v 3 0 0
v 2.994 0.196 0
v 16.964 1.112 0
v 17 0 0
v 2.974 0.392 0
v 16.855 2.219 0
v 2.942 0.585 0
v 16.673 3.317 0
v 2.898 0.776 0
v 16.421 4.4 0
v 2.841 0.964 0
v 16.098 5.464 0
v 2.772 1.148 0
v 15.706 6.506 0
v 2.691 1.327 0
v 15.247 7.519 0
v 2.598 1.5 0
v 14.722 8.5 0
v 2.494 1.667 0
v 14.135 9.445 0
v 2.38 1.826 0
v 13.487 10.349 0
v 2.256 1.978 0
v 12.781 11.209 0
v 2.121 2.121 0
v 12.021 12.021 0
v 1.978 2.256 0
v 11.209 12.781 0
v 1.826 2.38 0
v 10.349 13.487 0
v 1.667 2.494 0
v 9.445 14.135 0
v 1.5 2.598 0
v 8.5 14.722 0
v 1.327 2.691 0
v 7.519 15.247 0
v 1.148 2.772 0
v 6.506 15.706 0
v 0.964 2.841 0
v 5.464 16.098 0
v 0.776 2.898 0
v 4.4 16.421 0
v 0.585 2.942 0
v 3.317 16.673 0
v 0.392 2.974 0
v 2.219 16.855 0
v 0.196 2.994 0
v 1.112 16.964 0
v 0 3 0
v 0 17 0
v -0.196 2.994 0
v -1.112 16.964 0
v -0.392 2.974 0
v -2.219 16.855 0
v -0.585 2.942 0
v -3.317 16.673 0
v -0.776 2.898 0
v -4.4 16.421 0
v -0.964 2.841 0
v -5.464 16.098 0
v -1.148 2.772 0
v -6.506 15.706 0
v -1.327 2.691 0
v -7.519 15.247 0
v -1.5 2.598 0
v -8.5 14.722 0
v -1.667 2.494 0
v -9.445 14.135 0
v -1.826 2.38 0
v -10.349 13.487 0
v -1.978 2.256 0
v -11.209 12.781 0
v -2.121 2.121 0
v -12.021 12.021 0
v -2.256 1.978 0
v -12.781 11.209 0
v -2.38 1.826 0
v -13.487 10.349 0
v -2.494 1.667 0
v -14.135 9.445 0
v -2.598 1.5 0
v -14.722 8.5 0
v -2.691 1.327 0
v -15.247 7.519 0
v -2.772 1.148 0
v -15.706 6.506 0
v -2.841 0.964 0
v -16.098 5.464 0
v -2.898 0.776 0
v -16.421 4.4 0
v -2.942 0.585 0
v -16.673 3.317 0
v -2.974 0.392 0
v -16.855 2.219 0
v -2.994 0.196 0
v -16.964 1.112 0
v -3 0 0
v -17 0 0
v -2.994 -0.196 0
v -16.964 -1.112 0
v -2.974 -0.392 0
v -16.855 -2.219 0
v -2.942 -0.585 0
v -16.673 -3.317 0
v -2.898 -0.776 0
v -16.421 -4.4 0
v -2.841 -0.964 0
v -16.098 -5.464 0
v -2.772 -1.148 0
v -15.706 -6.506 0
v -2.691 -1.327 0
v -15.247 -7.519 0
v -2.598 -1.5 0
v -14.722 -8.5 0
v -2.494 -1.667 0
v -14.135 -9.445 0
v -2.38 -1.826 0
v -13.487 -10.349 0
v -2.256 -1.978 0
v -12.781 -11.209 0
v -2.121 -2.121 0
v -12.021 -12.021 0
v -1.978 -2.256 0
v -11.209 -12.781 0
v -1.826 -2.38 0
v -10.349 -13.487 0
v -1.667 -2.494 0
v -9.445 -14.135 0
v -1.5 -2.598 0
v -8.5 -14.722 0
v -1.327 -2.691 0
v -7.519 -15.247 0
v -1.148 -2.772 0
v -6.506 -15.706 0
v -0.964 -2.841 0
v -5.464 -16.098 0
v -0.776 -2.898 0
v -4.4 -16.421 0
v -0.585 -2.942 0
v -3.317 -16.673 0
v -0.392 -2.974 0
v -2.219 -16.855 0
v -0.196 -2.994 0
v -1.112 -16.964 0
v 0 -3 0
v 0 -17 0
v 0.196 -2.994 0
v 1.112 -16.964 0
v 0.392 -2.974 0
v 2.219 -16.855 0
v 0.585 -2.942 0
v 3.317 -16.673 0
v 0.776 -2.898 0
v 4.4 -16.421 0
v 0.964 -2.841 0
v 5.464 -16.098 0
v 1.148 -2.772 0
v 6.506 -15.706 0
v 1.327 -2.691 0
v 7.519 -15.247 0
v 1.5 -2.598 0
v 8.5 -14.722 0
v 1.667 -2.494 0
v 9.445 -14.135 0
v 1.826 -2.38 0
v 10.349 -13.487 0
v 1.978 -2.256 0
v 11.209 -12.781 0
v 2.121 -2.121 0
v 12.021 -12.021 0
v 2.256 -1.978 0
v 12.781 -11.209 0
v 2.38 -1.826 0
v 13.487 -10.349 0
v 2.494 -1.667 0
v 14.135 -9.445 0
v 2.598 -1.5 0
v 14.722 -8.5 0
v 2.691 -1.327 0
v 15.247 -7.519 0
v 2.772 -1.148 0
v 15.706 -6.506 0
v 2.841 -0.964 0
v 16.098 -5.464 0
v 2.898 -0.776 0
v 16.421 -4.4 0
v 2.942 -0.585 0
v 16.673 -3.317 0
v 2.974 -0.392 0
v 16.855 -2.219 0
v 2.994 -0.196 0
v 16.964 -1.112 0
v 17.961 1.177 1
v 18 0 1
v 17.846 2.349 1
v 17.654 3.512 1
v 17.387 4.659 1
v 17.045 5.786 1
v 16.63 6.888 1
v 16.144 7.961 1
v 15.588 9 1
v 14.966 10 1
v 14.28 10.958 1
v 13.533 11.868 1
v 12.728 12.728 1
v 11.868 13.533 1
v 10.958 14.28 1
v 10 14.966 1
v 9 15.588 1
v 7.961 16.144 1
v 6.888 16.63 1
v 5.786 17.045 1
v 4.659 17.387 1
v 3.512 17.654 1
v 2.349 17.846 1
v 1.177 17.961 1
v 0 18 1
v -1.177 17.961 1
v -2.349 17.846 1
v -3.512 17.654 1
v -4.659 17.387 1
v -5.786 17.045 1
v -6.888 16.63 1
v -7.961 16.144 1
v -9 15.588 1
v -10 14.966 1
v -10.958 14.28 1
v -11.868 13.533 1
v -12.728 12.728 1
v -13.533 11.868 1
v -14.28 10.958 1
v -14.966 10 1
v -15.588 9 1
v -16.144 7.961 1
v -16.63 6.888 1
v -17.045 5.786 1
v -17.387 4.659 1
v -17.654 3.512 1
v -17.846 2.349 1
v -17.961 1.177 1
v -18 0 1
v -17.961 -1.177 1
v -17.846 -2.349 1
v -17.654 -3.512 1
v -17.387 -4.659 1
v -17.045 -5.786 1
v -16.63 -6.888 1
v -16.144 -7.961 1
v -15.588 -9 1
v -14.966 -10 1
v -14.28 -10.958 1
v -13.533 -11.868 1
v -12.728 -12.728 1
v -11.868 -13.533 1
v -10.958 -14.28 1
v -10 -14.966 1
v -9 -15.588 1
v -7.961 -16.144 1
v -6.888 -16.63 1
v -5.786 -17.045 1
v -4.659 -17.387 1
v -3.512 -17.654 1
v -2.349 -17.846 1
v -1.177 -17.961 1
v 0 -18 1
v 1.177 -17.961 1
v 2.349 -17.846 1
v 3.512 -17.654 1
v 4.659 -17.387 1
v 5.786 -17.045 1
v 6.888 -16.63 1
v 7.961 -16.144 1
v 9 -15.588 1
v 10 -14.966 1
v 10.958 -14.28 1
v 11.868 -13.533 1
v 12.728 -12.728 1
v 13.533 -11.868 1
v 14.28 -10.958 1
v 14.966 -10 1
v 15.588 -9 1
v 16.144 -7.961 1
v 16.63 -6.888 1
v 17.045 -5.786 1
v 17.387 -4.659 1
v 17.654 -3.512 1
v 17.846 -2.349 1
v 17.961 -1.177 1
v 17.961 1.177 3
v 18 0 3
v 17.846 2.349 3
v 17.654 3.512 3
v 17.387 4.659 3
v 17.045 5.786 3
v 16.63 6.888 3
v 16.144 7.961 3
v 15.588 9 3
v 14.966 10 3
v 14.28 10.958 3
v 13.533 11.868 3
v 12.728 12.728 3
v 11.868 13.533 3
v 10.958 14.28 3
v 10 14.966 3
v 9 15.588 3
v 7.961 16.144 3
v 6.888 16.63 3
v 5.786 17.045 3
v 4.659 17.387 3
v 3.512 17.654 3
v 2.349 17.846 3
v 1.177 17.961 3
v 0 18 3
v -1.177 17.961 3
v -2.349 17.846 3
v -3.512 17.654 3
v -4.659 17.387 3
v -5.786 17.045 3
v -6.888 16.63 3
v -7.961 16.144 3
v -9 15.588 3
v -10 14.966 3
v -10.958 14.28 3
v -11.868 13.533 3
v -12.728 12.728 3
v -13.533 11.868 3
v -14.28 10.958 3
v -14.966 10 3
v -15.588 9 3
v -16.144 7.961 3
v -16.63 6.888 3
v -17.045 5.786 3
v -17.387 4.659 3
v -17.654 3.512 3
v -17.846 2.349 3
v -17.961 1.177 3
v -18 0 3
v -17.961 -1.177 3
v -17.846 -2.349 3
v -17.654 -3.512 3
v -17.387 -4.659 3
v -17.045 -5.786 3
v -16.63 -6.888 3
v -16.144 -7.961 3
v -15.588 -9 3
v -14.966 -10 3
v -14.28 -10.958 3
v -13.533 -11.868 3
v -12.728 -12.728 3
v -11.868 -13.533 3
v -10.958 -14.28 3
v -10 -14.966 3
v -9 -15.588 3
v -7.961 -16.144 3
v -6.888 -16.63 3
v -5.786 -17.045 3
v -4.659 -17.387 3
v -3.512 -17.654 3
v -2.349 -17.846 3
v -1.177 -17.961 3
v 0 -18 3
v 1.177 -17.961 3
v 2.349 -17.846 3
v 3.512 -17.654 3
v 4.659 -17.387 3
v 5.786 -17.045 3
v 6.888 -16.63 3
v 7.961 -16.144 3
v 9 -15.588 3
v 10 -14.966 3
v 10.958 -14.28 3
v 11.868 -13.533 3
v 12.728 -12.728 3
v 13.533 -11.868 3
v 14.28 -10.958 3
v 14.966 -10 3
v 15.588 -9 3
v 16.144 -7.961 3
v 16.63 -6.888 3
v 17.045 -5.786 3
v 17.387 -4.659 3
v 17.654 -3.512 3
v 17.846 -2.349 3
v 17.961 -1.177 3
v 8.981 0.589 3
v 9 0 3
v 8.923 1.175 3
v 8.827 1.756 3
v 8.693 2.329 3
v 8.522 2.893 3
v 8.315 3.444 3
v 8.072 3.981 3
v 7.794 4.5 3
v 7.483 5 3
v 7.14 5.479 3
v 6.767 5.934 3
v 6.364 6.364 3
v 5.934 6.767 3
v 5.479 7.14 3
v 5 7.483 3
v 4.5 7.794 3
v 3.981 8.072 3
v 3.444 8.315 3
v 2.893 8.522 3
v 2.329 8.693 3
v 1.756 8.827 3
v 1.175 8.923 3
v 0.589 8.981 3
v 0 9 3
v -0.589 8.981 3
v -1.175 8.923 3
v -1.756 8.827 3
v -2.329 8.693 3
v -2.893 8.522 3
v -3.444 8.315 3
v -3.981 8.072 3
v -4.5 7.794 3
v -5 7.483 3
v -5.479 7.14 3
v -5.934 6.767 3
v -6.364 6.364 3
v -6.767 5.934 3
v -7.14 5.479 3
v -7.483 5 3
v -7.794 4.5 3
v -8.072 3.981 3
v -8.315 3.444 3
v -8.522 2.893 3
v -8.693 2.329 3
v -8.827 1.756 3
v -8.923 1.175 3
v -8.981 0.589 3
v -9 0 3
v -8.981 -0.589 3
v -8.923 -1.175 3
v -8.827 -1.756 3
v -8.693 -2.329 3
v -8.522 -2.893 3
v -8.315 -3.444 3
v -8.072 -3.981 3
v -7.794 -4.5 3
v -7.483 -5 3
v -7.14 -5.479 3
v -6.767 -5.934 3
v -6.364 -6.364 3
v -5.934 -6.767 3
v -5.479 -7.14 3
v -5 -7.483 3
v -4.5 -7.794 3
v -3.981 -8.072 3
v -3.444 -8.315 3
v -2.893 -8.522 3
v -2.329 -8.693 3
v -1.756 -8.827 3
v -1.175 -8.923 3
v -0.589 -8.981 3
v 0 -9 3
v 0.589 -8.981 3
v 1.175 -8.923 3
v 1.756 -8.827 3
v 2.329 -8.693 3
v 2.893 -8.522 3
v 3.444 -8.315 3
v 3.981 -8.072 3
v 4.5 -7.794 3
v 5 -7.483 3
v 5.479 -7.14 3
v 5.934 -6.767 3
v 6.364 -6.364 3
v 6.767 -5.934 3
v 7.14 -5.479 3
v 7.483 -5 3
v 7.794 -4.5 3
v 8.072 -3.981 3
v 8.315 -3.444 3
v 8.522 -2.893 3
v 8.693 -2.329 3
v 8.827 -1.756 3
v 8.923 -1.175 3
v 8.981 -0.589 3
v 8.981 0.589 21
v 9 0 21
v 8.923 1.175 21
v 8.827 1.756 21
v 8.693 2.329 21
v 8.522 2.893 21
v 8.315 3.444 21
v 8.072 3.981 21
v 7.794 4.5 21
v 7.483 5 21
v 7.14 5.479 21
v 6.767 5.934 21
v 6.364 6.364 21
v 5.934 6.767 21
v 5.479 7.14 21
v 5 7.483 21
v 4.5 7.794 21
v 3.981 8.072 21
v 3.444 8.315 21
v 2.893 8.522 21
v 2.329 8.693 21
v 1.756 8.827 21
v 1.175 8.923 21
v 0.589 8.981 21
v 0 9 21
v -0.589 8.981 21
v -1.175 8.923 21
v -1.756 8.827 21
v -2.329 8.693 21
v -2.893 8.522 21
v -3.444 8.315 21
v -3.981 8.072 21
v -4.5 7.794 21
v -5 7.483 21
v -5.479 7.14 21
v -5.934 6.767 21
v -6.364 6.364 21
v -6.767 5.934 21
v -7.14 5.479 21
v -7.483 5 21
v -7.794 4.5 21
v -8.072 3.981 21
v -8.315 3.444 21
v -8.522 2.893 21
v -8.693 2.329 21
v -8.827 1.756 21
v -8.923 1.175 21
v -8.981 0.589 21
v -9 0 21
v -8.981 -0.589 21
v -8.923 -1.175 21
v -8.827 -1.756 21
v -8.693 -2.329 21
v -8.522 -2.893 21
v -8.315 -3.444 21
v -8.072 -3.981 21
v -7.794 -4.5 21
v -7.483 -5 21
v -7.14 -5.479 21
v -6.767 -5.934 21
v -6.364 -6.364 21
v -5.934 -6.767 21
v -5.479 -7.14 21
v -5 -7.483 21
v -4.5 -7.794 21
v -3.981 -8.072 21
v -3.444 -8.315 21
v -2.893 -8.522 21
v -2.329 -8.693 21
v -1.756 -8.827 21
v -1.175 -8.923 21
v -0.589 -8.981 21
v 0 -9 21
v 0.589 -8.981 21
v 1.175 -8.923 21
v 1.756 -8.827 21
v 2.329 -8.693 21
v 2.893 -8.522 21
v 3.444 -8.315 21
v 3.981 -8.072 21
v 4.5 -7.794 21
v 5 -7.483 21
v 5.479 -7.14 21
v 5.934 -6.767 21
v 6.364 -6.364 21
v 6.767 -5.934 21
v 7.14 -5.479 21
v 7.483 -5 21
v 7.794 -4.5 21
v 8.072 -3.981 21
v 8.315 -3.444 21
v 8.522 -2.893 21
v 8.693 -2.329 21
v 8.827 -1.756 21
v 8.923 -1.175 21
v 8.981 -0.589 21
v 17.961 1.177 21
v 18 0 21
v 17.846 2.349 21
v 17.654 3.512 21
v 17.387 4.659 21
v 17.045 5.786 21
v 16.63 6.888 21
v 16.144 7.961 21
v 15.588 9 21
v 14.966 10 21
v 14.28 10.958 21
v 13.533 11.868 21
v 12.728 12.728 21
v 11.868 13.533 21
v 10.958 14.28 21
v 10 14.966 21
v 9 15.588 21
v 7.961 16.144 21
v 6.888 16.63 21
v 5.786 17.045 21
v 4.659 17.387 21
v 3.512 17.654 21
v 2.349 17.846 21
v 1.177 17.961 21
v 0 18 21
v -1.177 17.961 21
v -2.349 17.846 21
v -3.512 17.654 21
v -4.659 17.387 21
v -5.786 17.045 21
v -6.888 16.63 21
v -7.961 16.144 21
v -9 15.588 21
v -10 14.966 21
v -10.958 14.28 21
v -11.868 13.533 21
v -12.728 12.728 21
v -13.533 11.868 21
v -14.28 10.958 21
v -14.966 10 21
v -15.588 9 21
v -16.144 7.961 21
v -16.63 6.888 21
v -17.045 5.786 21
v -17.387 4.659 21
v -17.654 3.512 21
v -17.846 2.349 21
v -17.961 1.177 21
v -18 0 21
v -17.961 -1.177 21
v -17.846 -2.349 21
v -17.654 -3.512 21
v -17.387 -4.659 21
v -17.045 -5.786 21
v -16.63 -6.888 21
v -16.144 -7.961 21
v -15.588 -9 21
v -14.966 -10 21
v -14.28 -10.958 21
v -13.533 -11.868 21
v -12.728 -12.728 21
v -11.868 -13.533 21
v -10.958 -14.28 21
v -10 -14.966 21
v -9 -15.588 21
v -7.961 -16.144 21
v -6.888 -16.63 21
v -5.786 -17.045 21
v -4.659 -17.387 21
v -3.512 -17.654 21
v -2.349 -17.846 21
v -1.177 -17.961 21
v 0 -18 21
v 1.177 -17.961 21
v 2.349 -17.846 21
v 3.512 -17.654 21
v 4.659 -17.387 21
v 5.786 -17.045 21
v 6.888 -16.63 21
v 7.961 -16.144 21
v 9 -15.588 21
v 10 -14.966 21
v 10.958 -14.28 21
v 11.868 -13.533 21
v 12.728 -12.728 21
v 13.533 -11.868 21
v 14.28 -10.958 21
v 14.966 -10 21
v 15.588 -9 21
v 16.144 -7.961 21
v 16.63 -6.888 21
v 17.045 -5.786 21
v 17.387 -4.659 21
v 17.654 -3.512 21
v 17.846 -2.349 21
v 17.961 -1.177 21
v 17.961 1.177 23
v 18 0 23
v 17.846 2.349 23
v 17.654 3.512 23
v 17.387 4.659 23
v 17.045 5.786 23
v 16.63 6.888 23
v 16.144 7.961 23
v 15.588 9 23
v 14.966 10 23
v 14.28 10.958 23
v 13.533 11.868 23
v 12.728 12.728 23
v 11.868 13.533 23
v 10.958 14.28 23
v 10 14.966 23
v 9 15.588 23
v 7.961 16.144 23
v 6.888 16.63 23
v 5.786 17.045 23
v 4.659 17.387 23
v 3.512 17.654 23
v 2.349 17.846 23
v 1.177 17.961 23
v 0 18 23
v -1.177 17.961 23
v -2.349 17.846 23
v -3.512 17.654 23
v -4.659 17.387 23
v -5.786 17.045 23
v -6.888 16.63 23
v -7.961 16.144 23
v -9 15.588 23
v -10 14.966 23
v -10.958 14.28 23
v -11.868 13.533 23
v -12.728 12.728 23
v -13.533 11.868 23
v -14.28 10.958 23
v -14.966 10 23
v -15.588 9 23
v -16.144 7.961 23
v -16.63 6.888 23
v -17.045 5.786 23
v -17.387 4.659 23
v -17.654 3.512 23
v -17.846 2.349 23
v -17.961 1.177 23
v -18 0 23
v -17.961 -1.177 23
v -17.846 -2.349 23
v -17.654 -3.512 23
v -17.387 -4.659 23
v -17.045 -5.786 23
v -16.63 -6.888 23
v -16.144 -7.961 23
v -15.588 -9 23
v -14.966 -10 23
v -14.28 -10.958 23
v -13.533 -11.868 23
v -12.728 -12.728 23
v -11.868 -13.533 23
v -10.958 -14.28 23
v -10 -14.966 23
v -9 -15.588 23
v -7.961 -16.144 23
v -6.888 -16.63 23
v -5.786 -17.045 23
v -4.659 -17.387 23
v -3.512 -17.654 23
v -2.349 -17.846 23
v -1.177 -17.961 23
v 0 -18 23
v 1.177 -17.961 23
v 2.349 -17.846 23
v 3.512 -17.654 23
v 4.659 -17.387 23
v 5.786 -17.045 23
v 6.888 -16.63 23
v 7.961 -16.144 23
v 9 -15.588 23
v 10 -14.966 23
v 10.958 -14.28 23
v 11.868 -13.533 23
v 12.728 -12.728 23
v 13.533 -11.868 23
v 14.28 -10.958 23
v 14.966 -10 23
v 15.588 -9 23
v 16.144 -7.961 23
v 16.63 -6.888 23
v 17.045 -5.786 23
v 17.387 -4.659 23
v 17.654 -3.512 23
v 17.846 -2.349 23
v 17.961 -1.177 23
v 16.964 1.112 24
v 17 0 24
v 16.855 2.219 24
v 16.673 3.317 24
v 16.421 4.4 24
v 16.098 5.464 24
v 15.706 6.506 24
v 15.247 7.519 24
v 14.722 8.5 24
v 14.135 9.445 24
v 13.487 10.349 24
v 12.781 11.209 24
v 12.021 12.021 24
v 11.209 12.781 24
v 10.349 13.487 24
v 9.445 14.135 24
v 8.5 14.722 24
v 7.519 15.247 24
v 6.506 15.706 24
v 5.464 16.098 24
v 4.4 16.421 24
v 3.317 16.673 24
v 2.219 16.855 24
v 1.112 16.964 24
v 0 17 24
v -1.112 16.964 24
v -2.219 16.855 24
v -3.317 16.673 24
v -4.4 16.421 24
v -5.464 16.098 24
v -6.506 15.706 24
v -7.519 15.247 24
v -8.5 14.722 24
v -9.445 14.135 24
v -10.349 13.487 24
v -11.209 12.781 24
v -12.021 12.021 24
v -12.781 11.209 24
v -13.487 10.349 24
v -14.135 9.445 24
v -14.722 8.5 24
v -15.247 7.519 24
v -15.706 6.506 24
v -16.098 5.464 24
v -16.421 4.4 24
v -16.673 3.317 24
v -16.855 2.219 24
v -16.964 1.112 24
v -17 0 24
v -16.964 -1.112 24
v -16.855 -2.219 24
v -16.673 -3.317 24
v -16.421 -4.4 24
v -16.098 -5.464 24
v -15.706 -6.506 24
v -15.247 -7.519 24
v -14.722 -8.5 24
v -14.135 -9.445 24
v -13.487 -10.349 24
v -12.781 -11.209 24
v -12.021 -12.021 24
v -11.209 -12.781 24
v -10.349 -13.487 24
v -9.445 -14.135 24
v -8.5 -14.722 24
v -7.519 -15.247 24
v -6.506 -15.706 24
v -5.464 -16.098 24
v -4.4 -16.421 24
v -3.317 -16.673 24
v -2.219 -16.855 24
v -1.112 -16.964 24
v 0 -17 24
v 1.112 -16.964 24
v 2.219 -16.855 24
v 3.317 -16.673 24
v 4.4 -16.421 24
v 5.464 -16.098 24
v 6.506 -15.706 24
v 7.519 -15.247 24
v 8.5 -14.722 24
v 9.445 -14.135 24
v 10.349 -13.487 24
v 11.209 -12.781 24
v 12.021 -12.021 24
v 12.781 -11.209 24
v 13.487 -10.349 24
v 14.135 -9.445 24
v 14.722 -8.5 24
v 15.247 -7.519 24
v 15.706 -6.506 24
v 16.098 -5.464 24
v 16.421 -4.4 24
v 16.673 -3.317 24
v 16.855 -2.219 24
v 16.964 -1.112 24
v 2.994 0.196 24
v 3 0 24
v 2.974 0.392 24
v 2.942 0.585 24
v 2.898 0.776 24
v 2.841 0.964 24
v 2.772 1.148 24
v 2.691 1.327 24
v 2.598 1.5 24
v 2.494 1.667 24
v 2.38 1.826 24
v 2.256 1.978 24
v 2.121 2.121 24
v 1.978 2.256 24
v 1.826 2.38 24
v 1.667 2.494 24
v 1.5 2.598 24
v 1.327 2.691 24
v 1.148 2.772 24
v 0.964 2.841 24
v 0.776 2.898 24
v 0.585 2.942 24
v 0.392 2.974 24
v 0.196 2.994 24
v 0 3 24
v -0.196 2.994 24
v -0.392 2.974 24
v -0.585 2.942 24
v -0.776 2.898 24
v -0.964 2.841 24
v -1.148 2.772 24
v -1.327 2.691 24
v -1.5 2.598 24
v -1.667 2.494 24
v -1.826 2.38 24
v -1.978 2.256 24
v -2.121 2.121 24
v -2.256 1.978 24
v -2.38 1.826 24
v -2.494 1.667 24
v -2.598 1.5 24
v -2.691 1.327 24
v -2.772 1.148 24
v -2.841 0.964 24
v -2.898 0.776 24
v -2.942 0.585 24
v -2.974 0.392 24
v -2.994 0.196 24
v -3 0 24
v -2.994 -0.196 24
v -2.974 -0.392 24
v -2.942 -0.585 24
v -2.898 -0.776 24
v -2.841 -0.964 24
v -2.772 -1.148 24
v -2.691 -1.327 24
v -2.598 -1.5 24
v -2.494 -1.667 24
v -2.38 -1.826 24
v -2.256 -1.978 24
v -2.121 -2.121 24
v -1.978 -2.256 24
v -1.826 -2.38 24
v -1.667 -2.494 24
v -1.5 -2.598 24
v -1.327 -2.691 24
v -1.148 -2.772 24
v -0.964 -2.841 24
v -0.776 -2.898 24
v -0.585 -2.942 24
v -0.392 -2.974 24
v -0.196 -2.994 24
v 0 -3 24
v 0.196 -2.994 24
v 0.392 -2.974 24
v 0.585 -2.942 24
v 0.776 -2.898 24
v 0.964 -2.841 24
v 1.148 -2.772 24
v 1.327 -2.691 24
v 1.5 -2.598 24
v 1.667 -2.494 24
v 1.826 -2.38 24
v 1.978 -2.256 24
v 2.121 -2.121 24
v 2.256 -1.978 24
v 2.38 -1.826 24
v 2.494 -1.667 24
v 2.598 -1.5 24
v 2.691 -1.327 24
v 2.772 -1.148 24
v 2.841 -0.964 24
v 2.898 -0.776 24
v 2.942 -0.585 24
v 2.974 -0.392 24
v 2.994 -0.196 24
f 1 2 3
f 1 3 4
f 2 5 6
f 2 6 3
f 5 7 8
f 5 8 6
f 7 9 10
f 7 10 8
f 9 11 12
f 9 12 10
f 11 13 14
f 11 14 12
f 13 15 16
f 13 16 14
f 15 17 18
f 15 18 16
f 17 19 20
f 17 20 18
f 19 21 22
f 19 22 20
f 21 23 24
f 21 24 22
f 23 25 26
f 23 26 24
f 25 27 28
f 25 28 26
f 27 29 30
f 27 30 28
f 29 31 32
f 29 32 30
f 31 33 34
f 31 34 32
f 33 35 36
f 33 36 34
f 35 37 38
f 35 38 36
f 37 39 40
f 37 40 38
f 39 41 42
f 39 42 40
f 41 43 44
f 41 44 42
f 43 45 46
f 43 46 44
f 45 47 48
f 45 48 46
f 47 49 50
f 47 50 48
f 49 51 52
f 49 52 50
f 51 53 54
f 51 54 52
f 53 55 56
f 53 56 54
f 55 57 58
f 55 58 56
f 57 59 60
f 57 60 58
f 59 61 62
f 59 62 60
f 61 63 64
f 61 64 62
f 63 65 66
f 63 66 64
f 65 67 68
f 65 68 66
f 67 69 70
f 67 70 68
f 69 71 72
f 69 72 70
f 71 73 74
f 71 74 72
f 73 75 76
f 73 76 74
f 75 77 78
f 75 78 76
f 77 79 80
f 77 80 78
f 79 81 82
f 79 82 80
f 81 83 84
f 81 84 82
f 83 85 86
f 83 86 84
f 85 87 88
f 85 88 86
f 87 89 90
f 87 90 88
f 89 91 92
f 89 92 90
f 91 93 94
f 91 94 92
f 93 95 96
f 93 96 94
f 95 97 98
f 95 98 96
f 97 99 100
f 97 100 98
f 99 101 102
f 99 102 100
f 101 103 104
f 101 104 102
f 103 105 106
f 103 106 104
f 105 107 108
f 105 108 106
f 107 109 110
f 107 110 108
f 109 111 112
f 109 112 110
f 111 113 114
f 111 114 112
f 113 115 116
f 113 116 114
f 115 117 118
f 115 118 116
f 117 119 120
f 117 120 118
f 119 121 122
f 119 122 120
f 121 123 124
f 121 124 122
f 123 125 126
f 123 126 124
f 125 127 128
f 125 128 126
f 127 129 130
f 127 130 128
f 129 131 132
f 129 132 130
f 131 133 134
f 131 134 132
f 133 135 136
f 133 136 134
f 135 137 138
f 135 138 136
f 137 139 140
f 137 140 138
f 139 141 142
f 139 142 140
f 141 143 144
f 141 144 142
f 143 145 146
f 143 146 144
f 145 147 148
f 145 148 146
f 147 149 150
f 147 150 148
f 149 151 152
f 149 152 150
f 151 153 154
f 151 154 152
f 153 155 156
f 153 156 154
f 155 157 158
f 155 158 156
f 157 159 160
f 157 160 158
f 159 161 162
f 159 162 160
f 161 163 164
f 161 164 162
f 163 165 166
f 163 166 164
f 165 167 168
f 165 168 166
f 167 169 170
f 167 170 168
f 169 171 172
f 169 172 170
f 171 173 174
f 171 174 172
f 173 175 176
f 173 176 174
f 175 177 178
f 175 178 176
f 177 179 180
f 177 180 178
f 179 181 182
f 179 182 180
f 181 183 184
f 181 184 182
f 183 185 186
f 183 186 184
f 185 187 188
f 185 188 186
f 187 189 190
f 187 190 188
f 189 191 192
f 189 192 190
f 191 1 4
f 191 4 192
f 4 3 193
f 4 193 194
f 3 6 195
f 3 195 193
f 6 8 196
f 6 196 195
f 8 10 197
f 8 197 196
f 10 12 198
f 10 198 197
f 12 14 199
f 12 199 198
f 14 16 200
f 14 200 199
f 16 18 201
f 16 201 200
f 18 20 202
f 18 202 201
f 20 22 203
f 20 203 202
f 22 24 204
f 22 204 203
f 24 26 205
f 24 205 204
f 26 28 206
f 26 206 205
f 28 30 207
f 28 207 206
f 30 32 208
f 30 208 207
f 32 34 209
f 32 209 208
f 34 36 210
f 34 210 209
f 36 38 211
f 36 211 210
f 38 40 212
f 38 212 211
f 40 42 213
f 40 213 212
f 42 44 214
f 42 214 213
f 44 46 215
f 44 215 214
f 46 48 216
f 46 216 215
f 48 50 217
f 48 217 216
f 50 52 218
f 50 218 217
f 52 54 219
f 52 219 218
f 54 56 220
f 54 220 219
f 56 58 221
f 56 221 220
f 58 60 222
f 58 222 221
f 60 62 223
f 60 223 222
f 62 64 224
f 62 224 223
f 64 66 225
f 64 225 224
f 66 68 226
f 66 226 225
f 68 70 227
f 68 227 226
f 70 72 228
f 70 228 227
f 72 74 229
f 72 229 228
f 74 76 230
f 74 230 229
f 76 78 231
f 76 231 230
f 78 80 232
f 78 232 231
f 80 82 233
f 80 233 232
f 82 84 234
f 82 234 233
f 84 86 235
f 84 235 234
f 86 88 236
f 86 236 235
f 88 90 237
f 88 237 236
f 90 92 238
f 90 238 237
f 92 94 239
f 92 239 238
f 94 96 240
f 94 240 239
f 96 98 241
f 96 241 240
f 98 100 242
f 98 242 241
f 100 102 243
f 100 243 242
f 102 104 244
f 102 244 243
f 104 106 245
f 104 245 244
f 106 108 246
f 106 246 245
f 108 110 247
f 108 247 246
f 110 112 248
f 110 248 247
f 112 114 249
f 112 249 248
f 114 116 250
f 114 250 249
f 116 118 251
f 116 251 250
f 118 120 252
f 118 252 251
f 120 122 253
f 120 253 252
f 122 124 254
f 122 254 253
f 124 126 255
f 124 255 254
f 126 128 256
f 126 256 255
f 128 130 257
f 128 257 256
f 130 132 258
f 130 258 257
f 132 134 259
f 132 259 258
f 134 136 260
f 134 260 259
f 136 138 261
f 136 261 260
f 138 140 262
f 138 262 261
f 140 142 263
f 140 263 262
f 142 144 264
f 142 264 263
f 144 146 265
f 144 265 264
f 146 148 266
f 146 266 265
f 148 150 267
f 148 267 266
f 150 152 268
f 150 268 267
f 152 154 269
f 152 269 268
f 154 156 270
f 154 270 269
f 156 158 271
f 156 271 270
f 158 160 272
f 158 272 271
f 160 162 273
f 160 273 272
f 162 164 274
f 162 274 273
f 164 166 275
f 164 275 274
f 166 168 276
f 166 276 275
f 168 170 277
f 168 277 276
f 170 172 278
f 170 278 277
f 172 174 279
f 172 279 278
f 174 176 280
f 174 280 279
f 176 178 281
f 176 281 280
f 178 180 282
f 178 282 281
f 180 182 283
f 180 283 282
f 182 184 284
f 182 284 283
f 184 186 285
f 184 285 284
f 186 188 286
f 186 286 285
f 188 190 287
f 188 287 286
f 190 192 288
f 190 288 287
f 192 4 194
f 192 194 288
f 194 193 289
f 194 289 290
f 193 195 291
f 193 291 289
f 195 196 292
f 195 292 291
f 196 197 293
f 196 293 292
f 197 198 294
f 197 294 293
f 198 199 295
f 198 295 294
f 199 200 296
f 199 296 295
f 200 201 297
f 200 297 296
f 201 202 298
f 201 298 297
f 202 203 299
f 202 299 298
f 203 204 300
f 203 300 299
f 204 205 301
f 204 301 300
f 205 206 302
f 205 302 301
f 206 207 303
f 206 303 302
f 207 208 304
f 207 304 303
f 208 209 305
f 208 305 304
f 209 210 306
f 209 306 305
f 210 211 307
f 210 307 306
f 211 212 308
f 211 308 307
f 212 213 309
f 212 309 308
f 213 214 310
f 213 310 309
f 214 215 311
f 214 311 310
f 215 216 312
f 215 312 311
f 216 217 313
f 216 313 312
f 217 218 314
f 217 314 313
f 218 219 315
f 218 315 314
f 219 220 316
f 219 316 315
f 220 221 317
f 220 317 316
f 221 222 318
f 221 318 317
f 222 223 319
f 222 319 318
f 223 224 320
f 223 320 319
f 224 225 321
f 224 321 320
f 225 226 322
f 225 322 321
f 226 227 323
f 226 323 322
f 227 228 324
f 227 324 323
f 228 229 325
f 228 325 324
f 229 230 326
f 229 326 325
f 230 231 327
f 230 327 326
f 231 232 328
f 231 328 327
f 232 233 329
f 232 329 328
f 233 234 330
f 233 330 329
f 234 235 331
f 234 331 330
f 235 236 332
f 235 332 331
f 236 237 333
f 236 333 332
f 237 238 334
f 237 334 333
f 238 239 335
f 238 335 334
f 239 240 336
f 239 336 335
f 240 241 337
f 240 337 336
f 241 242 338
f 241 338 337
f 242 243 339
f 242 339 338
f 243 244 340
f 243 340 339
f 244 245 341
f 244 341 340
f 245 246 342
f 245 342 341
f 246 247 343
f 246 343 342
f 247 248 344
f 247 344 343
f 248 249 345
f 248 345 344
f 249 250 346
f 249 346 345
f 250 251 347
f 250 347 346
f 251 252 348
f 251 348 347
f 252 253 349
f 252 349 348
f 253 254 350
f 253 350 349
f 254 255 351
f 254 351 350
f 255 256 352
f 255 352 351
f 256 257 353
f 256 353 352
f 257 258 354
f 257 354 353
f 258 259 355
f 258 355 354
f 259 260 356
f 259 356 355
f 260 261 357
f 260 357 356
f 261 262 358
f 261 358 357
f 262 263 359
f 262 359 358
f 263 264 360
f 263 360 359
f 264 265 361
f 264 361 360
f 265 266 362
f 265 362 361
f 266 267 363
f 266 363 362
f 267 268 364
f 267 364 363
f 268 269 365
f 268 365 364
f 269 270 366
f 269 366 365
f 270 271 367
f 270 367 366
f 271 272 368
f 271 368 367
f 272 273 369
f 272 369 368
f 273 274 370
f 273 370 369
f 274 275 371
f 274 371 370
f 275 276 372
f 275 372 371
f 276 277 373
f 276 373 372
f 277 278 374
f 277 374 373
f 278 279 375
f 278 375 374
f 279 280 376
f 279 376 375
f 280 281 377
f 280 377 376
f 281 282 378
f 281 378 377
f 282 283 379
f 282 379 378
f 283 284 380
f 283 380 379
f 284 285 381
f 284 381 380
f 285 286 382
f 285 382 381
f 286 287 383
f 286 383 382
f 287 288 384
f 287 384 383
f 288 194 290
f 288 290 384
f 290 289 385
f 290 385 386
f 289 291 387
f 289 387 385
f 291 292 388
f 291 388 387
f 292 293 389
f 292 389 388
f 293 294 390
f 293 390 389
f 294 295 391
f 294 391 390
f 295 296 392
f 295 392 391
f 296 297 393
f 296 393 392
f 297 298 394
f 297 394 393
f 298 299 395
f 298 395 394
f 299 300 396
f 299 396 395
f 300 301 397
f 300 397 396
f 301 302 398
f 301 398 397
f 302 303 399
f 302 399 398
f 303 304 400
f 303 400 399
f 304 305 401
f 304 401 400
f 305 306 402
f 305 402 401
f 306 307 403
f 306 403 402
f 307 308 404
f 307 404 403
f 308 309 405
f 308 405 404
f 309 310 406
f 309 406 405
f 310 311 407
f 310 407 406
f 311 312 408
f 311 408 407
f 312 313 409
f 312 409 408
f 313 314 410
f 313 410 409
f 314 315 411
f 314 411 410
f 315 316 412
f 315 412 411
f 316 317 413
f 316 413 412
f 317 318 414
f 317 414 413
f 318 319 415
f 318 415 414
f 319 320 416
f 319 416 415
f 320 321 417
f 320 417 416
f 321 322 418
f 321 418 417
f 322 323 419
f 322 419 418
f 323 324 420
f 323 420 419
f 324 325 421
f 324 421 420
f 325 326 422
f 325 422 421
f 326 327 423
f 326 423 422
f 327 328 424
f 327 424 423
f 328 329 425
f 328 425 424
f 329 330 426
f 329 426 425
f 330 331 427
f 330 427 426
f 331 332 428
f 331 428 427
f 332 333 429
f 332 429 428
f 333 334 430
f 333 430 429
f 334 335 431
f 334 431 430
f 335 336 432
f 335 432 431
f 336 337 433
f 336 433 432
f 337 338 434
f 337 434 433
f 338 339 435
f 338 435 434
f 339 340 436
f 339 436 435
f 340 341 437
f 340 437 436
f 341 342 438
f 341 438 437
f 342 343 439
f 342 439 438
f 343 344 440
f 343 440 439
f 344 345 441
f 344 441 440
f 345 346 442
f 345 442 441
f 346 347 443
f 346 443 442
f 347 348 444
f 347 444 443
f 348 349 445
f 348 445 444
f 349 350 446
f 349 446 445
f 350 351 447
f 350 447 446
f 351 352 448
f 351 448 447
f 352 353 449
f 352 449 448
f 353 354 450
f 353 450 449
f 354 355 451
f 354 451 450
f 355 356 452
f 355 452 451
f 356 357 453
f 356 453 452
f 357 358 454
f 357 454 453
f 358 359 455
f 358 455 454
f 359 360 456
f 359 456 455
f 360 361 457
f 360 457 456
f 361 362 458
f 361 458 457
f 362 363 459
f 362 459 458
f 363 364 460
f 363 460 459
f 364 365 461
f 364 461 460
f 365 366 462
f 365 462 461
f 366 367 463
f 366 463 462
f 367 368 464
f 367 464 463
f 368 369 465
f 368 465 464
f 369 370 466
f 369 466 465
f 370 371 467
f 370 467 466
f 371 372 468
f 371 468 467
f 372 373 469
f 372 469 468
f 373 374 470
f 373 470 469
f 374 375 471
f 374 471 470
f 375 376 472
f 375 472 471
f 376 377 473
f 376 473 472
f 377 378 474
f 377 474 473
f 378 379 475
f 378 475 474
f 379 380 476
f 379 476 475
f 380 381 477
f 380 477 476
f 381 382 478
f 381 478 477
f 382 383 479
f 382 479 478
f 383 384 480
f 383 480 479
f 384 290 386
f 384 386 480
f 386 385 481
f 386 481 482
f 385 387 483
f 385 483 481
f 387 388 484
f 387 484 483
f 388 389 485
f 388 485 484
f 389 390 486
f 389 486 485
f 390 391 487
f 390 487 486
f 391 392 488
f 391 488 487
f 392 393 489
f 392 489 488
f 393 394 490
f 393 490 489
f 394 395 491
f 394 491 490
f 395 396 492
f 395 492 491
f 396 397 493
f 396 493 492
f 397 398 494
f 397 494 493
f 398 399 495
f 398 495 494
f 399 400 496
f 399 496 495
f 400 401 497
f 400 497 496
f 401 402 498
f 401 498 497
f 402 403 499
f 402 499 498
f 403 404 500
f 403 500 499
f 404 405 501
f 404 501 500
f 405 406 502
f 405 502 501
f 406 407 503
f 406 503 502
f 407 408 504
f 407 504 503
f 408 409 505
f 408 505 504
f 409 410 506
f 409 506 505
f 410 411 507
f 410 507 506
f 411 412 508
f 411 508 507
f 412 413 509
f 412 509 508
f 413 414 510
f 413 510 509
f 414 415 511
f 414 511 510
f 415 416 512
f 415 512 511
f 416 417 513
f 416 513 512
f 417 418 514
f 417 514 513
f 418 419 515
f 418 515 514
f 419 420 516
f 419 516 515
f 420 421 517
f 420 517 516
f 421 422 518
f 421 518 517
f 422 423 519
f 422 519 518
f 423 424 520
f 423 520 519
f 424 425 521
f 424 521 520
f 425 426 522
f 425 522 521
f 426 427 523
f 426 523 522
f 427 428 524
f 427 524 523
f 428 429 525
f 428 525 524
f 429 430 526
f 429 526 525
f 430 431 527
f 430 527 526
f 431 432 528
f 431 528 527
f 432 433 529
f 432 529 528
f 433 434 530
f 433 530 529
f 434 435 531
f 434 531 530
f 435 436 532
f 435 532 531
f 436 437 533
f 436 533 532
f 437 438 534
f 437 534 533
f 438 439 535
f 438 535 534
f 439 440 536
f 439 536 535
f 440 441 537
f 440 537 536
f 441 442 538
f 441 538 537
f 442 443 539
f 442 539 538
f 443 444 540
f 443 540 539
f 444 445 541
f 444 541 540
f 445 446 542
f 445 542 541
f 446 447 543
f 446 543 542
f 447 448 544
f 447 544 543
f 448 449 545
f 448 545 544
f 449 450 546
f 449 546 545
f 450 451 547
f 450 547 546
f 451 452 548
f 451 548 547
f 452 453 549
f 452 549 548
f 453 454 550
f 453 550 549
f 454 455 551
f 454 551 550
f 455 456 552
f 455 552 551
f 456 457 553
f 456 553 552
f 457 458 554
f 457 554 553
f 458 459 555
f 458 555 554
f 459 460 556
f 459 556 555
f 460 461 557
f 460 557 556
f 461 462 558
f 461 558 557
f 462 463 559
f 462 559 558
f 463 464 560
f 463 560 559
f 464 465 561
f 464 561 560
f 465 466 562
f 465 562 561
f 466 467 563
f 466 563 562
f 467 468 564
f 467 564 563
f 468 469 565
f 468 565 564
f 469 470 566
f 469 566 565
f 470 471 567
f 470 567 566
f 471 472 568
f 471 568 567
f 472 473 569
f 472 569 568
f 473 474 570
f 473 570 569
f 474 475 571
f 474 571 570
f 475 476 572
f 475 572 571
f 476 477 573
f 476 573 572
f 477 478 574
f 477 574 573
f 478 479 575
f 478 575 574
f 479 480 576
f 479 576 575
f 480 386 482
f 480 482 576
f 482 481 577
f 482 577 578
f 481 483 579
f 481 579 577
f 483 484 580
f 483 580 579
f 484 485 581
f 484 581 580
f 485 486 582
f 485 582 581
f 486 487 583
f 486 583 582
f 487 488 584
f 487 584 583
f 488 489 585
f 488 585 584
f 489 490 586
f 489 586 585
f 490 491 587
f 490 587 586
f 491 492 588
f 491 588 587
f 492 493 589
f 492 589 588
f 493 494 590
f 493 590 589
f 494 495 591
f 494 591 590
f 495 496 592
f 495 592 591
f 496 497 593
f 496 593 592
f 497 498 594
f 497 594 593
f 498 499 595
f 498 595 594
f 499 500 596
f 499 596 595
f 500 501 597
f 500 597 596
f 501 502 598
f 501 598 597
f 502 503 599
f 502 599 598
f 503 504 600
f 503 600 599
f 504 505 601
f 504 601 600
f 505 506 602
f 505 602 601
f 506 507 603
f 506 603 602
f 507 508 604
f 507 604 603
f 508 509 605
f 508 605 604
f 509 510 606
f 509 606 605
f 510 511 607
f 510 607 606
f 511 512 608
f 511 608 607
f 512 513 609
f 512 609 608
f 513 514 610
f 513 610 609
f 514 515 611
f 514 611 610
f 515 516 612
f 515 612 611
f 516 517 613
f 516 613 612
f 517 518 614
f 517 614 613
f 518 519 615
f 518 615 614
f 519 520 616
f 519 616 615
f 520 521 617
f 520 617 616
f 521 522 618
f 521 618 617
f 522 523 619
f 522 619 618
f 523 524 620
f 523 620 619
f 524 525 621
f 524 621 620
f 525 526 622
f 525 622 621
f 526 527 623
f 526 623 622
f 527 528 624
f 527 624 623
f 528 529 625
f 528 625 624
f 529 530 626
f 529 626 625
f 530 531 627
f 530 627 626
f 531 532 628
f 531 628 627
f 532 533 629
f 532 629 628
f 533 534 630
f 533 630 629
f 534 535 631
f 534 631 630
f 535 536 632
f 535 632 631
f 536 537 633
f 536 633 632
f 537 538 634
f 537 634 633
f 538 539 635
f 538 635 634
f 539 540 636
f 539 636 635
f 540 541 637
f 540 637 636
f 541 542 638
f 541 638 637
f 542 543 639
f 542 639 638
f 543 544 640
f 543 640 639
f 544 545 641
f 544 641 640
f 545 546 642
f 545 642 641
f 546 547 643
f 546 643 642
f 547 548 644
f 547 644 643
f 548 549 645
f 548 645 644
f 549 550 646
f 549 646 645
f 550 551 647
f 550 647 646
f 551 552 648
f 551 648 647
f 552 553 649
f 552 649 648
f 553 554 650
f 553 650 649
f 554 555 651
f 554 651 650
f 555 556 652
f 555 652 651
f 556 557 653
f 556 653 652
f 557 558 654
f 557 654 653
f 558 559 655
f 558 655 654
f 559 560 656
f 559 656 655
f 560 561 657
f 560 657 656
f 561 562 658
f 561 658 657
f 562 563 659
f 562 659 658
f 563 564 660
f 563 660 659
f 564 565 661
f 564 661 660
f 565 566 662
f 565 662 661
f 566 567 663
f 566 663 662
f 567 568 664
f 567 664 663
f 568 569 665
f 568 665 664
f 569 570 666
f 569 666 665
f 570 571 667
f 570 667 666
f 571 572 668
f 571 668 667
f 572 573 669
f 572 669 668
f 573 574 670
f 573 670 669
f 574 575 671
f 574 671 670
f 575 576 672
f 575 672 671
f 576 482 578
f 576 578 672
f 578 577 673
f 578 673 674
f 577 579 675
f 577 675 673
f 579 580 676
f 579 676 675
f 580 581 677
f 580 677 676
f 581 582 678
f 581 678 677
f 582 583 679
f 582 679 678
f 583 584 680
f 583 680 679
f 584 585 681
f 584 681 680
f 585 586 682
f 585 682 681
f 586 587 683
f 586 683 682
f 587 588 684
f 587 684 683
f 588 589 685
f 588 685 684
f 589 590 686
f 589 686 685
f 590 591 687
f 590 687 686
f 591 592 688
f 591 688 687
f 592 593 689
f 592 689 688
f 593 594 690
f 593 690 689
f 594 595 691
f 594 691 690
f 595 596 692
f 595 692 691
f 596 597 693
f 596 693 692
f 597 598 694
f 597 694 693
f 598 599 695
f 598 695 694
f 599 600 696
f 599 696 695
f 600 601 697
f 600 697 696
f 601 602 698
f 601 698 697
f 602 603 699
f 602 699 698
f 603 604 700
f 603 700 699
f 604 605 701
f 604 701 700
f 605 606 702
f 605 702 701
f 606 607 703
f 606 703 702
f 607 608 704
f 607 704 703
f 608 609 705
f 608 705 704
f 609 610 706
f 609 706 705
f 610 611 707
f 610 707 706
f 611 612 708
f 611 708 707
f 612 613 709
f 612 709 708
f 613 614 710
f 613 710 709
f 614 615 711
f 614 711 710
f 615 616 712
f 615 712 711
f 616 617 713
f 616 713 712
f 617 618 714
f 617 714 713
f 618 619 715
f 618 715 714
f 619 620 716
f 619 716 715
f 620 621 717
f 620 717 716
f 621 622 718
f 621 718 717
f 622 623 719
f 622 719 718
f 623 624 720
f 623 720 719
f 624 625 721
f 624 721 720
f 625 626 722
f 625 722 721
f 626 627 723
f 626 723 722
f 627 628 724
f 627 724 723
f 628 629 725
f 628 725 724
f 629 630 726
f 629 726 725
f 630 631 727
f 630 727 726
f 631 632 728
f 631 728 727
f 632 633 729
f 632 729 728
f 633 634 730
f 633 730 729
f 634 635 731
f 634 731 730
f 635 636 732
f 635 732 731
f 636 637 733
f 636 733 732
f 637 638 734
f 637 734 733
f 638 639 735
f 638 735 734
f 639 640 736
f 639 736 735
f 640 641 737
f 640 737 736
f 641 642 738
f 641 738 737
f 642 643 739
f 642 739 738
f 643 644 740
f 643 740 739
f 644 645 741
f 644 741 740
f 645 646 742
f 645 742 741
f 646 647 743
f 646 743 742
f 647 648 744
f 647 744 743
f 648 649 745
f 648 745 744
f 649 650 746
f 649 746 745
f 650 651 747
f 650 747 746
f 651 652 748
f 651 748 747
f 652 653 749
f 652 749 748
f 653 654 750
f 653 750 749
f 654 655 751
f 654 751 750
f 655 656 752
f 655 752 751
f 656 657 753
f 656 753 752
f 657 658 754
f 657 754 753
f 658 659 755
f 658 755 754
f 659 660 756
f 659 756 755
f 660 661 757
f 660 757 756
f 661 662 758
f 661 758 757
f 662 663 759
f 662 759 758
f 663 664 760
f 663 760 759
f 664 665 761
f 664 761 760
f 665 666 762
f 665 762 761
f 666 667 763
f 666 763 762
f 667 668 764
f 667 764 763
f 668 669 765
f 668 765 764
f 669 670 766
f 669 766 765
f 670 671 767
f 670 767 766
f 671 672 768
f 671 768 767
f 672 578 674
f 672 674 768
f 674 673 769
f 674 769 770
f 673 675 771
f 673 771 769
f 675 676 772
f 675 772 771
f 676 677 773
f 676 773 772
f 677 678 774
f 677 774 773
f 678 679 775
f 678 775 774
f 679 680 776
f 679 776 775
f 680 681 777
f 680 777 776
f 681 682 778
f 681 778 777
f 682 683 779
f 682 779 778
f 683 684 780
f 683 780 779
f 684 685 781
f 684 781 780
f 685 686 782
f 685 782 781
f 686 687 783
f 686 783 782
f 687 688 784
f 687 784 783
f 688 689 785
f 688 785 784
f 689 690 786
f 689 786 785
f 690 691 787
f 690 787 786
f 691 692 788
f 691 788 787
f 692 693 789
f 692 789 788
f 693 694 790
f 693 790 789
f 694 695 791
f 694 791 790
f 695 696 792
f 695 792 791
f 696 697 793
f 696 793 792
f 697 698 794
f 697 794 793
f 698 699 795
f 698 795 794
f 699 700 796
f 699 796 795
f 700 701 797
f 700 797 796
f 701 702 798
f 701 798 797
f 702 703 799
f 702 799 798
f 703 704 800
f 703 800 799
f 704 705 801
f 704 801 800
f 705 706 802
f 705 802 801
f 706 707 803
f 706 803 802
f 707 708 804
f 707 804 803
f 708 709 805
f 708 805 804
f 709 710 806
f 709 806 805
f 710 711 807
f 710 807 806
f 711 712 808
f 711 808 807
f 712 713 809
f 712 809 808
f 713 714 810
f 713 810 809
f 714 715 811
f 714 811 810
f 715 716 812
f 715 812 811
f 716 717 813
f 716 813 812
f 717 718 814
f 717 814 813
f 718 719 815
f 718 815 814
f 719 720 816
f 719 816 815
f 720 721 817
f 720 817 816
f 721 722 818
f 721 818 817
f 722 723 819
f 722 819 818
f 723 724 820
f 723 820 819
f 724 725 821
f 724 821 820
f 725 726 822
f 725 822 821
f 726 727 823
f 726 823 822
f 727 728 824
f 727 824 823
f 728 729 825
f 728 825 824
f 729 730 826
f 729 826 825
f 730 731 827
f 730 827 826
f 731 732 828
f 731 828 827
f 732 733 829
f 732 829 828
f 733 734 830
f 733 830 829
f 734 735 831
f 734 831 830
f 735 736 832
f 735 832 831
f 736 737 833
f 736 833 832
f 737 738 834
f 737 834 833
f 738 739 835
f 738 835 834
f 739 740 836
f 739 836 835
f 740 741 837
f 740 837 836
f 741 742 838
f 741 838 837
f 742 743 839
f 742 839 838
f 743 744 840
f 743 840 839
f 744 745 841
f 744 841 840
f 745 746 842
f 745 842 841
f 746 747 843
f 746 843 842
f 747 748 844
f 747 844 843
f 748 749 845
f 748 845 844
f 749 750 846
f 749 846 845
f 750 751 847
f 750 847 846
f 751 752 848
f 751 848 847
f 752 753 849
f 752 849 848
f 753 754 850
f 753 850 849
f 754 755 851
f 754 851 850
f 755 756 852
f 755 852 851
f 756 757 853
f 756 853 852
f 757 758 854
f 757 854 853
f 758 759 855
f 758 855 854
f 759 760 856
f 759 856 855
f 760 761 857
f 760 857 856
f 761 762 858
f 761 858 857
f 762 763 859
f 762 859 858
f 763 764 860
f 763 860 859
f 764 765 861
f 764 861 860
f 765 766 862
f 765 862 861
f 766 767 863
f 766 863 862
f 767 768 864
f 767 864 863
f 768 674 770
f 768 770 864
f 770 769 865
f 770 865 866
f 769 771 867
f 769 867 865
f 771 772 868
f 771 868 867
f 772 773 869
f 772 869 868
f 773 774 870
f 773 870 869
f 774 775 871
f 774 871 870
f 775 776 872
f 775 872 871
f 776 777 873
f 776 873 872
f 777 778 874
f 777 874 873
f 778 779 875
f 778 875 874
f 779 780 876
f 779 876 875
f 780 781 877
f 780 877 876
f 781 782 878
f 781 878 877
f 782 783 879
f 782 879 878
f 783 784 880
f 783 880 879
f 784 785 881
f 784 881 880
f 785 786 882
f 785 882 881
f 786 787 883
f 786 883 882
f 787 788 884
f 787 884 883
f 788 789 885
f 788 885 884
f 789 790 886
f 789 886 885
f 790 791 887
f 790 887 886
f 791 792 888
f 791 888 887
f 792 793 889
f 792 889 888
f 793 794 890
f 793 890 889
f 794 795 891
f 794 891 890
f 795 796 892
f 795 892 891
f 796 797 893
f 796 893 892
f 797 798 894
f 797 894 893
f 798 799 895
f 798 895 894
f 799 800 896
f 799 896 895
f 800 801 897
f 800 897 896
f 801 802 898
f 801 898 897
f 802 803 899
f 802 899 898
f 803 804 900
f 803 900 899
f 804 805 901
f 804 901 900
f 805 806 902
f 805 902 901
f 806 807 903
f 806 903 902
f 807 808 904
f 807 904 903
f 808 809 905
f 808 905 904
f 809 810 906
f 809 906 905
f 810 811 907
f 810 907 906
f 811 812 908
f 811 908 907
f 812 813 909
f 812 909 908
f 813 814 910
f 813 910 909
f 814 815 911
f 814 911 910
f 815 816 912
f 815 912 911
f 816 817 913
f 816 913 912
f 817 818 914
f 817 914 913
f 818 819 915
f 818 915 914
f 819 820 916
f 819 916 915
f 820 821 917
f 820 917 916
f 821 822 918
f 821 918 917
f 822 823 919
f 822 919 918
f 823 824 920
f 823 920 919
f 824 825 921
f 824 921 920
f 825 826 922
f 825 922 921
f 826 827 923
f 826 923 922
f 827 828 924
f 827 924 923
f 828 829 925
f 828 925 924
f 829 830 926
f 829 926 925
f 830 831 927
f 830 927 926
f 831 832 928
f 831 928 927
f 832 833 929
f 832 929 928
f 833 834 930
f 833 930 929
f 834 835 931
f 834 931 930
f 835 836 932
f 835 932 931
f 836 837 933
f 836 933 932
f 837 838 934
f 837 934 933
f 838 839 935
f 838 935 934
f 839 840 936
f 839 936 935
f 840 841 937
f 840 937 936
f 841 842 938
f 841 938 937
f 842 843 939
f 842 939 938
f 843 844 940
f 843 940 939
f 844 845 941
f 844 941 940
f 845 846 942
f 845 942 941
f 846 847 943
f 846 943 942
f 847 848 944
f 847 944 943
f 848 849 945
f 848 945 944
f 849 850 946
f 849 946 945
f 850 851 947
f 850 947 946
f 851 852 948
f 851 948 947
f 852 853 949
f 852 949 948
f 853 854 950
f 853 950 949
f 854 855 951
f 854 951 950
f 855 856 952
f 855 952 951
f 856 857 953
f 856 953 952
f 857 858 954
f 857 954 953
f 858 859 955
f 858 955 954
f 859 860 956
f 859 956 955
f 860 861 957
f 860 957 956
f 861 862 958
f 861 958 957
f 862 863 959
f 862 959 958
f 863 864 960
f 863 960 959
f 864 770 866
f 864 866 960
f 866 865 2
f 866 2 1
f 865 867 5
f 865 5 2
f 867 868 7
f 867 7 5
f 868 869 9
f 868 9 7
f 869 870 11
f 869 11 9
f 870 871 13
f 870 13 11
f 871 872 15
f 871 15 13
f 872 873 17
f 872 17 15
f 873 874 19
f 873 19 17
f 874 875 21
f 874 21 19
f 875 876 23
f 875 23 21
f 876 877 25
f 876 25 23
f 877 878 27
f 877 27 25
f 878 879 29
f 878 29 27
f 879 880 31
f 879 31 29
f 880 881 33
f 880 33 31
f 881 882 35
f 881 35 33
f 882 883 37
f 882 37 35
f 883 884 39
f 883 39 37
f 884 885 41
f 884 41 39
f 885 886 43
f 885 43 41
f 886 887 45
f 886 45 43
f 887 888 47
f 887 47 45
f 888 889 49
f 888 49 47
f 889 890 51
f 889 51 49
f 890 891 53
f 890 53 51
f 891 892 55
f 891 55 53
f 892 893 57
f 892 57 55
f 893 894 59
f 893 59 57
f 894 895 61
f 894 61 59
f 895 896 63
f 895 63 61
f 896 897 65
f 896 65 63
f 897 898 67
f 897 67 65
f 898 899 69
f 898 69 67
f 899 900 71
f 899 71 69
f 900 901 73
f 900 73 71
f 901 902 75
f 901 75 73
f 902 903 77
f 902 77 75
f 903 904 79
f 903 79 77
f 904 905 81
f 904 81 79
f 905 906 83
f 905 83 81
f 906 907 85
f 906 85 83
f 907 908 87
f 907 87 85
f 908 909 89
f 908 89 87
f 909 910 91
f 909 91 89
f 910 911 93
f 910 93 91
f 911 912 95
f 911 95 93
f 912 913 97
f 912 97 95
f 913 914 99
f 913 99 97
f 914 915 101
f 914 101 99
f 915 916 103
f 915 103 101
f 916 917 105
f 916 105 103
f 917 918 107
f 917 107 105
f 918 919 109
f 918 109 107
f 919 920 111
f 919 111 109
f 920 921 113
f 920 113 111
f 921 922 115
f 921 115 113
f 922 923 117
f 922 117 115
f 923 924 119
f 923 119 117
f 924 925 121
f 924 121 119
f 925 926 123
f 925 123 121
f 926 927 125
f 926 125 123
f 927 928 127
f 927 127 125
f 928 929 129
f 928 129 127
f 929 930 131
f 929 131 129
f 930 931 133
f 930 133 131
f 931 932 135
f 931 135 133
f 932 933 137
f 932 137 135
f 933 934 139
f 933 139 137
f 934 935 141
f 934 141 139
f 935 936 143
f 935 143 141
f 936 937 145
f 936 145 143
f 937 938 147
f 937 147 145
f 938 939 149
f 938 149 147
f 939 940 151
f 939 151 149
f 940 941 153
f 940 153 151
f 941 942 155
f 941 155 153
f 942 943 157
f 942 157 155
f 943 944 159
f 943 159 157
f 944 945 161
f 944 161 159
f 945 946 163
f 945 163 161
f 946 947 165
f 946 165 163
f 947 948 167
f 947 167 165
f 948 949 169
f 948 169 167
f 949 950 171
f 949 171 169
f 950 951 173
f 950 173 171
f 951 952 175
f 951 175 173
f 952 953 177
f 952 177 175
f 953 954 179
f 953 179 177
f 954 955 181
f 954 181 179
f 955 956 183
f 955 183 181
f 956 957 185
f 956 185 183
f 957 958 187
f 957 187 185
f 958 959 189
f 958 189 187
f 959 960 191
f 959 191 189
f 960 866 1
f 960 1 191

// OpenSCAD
// Original MechIntel educational model. CC0-1.0. Units: mm.
// Not a standardized or load-rated component.
$fn=96;
// Section points: [radius, height], mm. Edit to change the profile.
section=[[3, 0], [17, 0], [18, 1], [18, 3], [9, 3], [9, 21], [18, 21], [18, 23], [17, 24], [3, 24]];
rotate_extrude($fn=96) polygon(points=section);
